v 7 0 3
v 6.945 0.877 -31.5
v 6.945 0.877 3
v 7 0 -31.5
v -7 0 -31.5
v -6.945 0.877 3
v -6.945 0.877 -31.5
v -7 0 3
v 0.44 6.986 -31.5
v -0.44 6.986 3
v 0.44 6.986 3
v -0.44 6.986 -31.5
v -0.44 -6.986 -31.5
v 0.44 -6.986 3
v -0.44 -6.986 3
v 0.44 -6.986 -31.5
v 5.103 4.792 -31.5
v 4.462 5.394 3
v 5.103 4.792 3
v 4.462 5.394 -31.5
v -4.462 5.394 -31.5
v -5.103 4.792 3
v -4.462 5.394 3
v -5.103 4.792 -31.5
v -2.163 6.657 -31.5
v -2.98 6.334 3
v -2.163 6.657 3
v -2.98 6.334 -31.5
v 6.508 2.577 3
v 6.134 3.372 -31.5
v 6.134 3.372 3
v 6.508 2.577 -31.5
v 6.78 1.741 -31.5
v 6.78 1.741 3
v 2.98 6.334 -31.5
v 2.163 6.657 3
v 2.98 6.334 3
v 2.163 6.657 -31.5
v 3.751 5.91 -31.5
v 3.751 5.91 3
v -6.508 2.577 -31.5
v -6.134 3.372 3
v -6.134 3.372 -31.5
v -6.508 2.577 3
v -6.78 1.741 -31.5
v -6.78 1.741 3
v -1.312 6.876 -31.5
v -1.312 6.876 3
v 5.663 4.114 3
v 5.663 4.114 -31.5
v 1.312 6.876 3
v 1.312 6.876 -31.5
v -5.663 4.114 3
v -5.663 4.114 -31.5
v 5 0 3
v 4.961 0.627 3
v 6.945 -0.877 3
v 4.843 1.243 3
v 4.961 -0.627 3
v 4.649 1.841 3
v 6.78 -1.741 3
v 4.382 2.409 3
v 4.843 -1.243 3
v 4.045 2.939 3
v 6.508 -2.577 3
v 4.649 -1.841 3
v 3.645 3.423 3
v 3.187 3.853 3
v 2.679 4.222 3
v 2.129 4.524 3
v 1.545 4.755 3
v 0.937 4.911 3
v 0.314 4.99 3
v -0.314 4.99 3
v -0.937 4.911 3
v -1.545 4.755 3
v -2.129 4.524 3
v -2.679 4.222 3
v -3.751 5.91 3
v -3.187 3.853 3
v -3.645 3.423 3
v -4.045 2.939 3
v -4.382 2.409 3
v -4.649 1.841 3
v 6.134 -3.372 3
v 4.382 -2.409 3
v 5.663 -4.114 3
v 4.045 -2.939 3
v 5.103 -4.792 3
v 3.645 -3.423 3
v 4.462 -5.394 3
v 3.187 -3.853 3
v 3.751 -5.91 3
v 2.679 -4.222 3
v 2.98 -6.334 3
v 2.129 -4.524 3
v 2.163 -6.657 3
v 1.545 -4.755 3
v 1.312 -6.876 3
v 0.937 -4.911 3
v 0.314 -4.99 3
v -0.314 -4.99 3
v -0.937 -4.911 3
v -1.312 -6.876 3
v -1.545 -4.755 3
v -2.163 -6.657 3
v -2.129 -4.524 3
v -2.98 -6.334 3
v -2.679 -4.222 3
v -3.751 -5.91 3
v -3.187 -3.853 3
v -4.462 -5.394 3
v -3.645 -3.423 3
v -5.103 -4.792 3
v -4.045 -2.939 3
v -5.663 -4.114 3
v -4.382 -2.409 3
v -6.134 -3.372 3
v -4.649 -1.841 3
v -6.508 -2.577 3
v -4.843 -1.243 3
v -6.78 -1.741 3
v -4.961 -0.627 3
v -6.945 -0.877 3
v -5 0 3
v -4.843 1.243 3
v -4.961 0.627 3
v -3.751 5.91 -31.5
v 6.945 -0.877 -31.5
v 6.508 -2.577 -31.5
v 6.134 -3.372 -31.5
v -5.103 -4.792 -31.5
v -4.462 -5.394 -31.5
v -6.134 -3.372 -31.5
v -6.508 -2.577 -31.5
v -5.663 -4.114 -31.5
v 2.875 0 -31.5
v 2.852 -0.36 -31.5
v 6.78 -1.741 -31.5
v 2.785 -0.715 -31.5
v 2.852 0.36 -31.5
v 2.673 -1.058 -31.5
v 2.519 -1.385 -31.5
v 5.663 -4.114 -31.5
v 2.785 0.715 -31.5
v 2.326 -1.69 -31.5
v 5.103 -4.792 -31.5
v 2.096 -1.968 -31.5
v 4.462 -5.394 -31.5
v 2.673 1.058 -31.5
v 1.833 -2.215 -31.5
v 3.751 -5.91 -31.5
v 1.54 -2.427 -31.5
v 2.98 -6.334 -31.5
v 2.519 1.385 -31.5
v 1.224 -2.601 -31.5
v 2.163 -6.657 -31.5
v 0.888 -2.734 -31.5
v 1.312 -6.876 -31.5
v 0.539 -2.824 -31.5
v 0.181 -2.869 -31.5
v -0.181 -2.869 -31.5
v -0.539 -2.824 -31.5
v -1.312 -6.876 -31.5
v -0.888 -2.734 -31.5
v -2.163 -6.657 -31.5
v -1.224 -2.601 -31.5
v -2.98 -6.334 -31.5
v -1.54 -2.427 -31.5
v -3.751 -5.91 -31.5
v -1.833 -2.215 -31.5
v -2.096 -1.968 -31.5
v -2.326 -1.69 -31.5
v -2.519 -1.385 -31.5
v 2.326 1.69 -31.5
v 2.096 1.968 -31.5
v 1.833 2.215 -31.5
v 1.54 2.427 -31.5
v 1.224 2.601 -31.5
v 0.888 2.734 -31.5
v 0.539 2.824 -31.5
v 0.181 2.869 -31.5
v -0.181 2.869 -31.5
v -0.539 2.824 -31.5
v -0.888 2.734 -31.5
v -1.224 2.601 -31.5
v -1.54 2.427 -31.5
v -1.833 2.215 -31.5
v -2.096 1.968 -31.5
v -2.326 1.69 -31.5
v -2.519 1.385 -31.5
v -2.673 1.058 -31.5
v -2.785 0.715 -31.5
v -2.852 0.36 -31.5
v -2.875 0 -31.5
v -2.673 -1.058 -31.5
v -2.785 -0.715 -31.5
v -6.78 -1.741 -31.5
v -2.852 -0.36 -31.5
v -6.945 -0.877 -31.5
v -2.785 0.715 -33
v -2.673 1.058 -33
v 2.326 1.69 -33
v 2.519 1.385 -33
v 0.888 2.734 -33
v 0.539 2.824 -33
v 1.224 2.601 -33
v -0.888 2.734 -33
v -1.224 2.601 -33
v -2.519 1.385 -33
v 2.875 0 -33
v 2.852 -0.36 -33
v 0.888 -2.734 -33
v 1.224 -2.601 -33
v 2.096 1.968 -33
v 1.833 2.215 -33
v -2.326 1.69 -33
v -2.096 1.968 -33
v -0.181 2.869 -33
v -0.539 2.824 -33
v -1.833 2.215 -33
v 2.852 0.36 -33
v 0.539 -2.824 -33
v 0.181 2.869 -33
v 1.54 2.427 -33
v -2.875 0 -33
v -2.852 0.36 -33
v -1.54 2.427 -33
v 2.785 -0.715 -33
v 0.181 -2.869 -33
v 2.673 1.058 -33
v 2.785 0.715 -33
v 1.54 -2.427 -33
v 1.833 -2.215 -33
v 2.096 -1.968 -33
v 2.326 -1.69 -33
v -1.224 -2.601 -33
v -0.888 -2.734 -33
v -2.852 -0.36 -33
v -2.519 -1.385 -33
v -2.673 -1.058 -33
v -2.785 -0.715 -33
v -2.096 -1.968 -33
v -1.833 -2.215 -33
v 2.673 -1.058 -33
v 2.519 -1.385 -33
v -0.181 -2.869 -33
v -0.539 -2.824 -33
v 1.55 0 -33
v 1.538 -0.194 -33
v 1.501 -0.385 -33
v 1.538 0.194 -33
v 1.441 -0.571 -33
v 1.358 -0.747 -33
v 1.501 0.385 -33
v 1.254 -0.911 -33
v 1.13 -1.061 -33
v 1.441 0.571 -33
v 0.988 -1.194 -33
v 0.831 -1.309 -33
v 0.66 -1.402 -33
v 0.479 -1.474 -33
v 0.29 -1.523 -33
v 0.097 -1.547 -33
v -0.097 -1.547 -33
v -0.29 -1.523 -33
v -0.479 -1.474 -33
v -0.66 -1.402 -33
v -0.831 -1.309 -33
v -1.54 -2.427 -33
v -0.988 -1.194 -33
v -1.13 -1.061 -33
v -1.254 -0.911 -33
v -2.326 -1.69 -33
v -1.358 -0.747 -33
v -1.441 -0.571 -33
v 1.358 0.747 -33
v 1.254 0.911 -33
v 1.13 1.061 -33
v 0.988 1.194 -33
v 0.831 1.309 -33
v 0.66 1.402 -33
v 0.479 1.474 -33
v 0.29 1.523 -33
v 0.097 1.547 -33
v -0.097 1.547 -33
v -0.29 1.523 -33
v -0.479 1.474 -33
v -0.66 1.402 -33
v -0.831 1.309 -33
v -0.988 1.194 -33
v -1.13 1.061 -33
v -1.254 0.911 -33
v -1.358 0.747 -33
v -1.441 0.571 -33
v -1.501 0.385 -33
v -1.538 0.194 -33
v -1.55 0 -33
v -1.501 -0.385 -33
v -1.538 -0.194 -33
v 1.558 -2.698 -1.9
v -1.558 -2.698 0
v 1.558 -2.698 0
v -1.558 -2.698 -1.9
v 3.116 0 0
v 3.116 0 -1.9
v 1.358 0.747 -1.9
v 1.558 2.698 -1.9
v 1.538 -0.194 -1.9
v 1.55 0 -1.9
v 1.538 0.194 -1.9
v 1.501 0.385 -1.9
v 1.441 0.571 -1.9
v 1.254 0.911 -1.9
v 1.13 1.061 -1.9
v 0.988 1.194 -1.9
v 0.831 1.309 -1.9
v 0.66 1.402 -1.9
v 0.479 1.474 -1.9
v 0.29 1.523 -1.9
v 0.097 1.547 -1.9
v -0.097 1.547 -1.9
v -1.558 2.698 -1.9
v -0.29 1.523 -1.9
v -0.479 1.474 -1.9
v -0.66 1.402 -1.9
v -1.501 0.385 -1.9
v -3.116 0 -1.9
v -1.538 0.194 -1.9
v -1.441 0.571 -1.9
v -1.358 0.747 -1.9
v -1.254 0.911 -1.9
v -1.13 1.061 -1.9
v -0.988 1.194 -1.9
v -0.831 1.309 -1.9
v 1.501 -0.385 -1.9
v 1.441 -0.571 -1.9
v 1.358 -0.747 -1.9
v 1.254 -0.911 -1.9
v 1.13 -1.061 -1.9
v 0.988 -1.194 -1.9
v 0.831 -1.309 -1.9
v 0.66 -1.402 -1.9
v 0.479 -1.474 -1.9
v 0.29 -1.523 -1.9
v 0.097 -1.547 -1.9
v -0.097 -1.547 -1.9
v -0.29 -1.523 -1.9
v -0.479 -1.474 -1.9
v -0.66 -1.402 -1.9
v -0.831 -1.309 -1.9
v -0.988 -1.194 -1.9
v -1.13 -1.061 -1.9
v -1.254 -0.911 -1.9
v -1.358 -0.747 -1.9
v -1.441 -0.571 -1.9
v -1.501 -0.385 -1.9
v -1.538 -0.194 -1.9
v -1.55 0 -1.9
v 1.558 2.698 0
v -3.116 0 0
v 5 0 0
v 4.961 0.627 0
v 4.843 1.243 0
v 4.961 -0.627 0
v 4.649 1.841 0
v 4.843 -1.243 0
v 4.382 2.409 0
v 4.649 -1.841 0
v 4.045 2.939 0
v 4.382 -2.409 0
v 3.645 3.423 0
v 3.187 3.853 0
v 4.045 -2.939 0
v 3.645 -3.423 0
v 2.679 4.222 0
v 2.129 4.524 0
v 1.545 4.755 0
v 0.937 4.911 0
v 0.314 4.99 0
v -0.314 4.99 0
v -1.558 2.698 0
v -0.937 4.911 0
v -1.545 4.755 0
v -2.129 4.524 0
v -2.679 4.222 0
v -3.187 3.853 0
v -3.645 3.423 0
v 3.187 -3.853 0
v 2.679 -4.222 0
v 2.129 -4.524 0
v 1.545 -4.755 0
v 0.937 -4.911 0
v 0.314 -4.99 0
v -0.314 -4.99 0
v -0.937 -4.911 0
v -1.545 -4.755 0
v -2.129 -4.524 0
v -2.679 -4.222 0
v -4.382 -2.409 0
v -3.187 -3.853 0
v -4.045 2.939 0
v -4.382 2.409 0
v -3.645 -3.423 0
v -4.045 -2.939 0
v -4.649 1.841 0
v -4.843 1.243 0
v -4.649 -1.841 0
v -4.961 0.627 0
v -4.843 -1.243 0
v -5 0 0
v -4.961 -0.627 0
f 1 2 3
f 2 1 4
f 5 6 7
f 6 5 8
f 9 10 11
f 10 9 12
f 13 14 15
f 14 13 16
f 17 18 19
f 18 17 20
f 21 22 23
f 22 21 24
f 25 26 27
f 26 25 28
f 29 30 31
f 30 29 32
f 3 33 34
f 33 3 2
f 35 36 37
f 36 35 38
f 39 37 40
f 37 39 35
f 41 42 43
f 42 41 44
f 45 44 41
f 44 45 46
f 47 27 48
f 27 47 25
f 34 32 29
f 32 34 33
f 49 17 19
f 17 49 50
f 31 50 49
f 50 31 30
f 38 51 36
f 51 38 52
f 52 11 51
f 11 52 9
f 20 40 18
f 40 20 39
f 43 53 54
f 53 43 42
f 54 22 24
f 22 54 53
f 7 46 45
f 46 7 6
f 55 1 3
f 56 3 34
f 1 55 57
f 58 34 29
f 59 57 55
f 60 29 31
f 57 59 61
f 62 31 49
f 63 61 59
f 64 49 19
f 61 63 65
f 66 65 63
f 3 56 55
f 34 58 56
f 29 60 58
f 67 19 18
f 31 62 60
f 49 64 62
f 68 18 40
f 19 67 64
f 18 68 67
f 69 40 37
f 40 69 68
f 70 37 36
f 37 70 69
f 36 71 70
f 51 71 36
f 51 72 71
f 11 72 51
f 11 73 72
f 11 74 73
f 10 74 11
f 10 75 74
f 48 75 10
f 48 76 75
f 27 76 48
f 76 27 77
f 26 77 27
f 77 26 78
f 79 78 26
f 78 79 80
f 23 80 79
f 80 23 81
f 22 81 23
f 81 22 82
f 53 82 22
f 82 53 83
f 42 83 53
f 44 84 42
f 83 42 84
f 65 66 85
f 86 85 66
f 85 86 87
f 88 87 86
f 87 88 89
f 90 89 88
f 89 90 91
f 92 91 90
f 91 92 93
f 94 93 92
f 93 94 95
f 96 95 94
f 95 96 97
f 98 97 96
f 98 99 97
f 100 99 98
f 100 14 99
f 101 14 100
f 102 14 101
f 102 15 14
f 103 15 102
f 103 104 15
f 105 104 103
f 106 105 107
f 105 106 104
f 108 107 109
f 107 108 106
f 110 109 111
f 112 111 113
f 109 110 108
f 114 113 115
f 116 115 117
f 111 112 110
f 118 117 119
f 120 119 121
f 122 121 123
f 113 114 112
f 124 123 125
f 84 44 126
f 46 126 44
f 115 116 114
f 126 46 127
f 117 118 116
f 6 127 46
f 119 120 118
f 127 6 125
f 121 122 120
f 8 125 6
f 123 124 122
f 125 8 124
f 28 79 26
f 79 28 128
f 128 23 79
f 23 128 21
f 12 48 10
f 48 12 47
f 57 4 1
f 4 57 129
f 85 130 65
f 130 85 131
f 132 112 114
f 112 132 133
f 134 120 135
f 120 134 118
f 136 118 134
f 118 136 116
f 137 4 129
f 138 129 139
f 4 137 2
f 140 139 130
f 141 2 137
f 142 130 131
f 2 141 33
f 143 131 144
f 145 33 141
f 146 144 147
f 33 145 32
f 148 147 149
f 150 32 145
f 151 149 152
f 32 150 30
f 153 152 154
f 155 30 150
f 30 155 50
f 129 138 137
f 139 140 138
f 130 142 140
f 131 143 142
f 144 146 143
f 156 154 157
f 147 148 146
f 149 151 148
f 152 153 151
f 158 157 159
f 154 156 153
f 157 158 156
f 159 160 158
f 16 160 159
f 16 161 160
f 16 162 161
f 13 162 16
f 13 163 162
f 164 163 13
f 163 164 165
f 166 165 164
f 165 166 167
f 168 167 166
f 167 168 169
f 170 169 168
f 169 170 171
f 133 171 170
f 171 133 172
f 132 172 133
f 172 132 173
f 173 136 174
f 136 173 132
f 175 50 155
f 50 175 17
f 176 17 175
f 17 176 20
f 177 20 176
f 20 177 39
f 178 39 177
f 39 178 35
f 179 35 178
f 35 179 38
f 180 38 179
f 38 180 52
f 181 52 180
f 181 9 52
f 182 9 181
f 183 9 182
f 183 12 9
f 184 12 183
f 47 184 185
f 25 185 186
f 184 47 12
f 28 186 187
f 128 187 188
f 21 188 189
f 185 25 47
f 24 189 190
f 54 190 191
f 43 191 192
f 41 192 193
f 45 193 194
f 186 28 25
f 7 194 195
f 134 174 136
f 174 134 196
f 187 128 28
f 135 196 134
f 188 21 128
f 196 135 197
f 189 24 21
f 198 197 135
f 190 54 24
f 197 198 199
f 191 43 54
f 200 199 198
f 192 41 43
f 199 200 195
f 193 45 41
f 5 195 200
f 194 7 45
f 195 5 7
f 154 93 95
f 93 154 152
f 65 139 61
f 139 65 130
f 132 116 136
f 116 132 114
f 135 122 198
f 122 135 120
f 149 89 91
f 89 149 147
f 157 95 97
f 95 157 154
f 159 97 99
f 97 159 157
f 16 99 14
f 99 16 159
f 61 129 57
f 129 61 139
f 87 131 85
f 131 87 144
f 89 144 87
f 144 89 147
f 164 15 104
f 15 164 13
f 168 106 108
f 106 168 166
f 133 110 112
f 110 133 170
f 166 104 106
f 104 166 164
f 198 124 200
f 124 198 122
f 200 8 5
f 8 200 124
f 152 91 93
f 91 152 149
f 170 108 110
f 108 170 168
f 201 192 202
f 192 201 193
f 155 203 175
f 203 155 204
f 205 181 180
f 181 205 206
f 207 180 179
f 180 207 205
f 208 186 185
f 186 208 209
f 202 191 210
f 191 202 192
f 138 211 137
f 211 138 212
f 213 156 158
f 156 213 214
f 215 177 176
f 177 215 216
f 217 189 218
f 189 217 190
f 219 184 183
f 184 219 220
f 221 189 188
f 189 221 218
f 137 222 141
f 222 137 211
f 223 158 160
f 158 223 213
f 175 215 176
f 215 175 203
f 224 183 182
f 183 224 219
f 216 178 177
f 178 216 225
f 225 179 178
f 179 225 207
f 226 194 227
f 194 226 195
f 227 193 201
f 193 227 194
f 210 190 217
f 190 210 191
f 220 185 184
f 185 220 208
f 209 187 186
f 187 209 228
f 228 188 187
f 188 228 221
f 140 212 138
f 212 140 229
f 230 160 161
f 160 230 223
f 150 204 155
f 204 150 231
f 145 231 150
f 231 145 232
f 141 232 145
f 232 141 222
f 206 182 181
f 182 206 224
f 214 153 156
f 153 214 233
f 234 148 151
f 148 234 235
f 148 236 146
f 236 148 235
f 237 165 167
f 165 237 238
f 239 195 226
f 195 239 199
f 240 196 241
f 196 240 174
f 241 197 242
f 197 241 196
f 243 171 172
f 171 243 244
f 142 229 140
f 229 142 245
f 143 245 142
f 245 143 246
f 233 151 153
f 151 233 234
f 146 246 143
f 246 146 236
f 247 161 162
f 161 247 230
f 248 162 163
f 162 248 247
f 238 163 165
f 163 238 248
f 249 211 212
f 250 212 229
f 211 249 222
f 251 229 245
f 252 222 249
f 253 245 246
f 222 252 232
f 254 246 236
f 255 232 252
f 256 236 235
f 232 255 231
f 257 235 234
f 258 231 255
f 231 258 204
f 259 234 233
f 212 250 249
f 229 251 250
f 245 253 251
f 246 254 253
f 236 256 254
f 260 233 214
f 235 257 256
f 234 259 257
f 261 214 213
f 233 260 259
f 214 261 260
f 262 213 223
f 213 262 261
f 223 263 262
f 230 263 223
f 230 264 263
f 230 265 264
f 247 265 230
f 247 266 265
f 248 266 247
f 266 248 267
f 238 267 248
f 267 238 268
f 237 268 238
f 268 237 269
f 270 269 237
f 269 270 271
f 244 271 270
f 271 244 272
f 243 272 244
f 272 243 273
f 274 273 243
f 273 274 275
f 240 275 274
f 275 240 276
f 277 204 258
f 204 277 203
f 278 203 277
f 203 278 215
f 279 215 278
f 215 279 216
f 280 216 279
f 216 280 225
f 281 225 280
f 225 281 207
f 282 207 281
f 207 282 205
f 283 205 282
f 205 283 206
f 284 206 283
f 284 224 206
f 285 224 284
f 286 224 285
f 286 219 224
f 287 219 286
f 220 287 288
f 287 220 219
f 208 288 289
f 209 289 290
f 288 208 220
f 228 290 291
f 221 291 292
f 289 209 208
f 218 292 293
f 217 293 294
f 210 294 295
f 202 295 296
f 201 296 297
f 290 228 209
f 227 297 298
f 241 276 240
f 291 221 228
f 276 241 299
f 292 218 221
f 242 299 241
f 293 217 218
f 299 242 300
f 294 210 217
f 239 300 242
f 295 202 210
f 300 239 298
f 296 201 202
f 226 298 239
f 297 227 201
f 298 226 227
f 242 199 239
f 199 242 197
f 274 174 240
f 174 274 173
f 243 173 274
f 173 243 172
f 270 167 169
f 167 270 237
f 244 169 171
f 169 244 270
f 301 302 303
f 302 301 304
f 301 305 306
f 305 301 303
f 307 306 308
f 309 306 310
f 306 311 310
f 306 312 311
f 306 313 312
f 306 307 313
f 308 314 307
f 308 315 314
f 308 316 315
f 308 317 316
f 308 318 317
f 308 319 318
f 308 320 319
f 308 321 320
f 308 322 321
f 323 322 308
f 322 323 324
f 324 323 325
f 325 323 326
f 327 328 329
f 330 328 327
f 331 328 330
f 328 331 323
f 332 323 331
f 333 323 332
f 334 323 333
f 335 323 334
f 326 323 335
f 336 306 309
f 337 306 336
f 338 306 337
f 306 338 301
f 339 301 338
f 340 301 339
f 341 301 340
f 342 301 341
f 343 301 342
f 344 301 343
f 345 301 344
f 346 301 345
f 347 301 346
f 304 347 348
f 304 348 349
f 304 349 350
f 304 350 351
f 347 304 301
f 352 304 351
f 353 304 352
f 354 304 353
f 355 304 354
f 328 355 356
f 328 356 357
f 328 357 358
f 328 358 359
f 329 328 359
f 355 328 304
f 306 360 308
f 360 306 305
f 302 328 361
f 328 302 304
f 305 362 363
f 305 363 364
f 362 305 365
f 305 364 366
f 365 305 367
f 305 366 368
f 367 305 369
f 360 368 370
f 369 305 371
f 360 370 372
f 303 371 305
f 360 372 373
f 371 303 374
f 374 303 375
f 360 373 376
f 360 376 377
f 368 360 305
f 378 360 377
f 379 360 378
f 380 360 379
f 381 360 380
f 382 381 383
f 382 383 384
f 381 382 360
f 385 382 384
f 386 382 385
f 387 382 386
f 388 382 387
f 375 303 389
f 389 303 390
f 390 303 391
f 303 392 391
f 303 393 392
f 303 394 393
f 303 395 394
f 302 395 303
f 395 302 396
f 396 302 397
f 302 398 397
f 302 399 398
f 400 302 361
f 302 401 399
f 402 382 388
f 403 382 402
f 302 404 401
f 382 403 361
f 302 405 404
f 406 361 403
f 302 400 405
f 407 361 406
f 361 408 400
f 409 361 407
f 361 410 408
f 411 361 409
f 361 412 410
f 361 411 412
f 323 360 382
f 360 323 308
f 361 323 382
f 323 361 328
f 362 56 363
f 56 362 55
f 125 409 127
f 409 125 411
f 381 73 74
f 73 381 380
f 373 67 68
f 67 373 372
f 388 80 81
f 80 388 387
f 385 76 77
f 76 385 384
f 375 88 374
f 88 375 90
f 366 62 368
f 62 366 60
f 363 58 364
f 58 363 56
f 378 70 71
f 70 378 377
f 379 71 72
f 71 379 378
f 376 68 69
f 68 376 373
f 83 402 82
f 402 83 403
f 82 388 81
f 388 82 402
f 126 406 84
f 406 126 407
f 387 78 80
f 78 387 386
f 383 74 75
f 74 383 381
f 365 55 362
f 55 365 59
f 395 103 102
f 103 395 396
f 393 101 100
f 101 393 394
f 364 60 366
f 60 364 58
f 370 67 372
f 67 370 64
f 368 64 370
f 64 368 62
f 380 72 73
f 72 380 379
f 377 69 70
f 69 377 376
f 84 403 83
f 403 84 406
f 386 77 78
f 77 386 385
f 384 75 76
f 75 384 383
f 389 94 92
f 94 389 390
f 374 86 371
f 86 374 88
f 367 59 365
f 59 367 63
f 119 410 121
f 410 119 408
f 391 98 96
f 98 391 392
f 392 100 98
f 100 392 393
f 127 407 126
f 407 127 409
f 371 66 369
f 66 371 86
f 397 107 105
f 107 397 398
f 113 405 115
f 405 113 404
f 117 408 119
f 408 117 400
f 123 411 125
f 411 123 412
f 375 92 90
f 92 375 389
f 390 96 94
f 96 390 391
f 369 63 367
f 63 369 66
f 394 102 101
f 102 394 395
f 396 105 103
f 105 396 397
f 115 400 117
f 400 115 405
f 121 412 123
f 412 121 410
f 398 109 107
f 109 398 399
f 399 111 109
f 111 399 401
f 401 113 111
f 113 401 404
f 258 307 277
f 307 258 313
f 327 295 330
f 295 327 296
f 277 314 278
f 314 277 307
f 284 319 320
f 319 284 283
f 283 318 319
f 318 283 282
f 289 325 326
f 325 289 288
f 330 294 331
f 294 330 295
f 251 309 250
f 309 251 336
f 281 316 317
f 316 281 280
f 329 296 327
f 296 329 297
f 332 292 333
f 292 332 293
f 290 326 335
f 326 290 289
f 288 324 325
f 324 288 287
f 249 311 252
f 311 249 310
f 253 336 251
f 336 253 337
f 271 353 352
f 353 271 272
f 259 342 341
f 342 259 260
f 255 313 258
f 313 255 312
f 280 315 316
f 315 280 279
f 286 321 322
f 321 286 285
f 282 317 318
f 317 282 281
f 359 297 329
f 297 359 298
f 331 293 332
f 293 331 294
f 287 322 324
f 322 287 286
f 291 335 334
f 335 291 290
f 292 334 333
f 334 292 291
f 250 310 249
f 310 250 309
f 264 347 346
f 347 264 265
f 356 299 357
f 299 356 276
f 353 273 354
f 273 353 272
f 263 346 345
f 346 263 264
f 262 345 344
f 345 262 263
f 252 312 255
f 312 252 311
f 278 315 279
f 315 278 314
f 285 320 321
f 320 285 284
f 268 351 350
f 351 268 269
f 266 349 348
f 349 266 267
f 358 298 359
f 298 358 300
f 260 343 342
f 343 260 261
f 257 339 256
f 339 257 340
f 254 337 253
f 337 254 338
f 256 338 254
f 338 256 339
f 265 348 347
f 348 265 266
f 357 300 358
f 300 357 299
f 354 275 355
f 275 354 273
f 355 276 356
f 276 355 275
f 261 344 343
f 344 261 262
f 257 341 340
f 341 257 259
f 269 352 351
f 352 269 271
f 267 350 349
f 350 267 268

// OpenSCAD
$fn = 50;

difference() {
	union() {
		translate(v = [0, 0, -31.5]) {
			cylinder(h = 34.5, r = 7.0);
		}
		#translate(v = [0, 0, -33.0]) {
			cylinder(h = 33, r = 2.875);
		}
	}
	union() {
		translate(v = [0, 0, 0]) {
			rotate(a = [0, 0, 0]) {
				difference() {
					union() {
						translate(v = [0, 0, -1.9]) {
							linear_extrude(height = 1.9) {
								polygon(points = [[3.1158, 0.0], [1.5579000000000005, 2.698361953111554], [-1.5578999999999994, 2.6983619531115544], [-3.1158, 3.815754496783323e-16], [-1.5579000000000014, -2.6983619531115535], [1.557899999999998, -2.6983619531115552]]);
							}
						}
					}
					union();
				}
			}
		}
		#cylinder(h = 3, r = 5.0);
		#translate(v = [0, 0, -100.0]) {
			cylinder(h = 200, r = 1.55);
		}
	}
}
